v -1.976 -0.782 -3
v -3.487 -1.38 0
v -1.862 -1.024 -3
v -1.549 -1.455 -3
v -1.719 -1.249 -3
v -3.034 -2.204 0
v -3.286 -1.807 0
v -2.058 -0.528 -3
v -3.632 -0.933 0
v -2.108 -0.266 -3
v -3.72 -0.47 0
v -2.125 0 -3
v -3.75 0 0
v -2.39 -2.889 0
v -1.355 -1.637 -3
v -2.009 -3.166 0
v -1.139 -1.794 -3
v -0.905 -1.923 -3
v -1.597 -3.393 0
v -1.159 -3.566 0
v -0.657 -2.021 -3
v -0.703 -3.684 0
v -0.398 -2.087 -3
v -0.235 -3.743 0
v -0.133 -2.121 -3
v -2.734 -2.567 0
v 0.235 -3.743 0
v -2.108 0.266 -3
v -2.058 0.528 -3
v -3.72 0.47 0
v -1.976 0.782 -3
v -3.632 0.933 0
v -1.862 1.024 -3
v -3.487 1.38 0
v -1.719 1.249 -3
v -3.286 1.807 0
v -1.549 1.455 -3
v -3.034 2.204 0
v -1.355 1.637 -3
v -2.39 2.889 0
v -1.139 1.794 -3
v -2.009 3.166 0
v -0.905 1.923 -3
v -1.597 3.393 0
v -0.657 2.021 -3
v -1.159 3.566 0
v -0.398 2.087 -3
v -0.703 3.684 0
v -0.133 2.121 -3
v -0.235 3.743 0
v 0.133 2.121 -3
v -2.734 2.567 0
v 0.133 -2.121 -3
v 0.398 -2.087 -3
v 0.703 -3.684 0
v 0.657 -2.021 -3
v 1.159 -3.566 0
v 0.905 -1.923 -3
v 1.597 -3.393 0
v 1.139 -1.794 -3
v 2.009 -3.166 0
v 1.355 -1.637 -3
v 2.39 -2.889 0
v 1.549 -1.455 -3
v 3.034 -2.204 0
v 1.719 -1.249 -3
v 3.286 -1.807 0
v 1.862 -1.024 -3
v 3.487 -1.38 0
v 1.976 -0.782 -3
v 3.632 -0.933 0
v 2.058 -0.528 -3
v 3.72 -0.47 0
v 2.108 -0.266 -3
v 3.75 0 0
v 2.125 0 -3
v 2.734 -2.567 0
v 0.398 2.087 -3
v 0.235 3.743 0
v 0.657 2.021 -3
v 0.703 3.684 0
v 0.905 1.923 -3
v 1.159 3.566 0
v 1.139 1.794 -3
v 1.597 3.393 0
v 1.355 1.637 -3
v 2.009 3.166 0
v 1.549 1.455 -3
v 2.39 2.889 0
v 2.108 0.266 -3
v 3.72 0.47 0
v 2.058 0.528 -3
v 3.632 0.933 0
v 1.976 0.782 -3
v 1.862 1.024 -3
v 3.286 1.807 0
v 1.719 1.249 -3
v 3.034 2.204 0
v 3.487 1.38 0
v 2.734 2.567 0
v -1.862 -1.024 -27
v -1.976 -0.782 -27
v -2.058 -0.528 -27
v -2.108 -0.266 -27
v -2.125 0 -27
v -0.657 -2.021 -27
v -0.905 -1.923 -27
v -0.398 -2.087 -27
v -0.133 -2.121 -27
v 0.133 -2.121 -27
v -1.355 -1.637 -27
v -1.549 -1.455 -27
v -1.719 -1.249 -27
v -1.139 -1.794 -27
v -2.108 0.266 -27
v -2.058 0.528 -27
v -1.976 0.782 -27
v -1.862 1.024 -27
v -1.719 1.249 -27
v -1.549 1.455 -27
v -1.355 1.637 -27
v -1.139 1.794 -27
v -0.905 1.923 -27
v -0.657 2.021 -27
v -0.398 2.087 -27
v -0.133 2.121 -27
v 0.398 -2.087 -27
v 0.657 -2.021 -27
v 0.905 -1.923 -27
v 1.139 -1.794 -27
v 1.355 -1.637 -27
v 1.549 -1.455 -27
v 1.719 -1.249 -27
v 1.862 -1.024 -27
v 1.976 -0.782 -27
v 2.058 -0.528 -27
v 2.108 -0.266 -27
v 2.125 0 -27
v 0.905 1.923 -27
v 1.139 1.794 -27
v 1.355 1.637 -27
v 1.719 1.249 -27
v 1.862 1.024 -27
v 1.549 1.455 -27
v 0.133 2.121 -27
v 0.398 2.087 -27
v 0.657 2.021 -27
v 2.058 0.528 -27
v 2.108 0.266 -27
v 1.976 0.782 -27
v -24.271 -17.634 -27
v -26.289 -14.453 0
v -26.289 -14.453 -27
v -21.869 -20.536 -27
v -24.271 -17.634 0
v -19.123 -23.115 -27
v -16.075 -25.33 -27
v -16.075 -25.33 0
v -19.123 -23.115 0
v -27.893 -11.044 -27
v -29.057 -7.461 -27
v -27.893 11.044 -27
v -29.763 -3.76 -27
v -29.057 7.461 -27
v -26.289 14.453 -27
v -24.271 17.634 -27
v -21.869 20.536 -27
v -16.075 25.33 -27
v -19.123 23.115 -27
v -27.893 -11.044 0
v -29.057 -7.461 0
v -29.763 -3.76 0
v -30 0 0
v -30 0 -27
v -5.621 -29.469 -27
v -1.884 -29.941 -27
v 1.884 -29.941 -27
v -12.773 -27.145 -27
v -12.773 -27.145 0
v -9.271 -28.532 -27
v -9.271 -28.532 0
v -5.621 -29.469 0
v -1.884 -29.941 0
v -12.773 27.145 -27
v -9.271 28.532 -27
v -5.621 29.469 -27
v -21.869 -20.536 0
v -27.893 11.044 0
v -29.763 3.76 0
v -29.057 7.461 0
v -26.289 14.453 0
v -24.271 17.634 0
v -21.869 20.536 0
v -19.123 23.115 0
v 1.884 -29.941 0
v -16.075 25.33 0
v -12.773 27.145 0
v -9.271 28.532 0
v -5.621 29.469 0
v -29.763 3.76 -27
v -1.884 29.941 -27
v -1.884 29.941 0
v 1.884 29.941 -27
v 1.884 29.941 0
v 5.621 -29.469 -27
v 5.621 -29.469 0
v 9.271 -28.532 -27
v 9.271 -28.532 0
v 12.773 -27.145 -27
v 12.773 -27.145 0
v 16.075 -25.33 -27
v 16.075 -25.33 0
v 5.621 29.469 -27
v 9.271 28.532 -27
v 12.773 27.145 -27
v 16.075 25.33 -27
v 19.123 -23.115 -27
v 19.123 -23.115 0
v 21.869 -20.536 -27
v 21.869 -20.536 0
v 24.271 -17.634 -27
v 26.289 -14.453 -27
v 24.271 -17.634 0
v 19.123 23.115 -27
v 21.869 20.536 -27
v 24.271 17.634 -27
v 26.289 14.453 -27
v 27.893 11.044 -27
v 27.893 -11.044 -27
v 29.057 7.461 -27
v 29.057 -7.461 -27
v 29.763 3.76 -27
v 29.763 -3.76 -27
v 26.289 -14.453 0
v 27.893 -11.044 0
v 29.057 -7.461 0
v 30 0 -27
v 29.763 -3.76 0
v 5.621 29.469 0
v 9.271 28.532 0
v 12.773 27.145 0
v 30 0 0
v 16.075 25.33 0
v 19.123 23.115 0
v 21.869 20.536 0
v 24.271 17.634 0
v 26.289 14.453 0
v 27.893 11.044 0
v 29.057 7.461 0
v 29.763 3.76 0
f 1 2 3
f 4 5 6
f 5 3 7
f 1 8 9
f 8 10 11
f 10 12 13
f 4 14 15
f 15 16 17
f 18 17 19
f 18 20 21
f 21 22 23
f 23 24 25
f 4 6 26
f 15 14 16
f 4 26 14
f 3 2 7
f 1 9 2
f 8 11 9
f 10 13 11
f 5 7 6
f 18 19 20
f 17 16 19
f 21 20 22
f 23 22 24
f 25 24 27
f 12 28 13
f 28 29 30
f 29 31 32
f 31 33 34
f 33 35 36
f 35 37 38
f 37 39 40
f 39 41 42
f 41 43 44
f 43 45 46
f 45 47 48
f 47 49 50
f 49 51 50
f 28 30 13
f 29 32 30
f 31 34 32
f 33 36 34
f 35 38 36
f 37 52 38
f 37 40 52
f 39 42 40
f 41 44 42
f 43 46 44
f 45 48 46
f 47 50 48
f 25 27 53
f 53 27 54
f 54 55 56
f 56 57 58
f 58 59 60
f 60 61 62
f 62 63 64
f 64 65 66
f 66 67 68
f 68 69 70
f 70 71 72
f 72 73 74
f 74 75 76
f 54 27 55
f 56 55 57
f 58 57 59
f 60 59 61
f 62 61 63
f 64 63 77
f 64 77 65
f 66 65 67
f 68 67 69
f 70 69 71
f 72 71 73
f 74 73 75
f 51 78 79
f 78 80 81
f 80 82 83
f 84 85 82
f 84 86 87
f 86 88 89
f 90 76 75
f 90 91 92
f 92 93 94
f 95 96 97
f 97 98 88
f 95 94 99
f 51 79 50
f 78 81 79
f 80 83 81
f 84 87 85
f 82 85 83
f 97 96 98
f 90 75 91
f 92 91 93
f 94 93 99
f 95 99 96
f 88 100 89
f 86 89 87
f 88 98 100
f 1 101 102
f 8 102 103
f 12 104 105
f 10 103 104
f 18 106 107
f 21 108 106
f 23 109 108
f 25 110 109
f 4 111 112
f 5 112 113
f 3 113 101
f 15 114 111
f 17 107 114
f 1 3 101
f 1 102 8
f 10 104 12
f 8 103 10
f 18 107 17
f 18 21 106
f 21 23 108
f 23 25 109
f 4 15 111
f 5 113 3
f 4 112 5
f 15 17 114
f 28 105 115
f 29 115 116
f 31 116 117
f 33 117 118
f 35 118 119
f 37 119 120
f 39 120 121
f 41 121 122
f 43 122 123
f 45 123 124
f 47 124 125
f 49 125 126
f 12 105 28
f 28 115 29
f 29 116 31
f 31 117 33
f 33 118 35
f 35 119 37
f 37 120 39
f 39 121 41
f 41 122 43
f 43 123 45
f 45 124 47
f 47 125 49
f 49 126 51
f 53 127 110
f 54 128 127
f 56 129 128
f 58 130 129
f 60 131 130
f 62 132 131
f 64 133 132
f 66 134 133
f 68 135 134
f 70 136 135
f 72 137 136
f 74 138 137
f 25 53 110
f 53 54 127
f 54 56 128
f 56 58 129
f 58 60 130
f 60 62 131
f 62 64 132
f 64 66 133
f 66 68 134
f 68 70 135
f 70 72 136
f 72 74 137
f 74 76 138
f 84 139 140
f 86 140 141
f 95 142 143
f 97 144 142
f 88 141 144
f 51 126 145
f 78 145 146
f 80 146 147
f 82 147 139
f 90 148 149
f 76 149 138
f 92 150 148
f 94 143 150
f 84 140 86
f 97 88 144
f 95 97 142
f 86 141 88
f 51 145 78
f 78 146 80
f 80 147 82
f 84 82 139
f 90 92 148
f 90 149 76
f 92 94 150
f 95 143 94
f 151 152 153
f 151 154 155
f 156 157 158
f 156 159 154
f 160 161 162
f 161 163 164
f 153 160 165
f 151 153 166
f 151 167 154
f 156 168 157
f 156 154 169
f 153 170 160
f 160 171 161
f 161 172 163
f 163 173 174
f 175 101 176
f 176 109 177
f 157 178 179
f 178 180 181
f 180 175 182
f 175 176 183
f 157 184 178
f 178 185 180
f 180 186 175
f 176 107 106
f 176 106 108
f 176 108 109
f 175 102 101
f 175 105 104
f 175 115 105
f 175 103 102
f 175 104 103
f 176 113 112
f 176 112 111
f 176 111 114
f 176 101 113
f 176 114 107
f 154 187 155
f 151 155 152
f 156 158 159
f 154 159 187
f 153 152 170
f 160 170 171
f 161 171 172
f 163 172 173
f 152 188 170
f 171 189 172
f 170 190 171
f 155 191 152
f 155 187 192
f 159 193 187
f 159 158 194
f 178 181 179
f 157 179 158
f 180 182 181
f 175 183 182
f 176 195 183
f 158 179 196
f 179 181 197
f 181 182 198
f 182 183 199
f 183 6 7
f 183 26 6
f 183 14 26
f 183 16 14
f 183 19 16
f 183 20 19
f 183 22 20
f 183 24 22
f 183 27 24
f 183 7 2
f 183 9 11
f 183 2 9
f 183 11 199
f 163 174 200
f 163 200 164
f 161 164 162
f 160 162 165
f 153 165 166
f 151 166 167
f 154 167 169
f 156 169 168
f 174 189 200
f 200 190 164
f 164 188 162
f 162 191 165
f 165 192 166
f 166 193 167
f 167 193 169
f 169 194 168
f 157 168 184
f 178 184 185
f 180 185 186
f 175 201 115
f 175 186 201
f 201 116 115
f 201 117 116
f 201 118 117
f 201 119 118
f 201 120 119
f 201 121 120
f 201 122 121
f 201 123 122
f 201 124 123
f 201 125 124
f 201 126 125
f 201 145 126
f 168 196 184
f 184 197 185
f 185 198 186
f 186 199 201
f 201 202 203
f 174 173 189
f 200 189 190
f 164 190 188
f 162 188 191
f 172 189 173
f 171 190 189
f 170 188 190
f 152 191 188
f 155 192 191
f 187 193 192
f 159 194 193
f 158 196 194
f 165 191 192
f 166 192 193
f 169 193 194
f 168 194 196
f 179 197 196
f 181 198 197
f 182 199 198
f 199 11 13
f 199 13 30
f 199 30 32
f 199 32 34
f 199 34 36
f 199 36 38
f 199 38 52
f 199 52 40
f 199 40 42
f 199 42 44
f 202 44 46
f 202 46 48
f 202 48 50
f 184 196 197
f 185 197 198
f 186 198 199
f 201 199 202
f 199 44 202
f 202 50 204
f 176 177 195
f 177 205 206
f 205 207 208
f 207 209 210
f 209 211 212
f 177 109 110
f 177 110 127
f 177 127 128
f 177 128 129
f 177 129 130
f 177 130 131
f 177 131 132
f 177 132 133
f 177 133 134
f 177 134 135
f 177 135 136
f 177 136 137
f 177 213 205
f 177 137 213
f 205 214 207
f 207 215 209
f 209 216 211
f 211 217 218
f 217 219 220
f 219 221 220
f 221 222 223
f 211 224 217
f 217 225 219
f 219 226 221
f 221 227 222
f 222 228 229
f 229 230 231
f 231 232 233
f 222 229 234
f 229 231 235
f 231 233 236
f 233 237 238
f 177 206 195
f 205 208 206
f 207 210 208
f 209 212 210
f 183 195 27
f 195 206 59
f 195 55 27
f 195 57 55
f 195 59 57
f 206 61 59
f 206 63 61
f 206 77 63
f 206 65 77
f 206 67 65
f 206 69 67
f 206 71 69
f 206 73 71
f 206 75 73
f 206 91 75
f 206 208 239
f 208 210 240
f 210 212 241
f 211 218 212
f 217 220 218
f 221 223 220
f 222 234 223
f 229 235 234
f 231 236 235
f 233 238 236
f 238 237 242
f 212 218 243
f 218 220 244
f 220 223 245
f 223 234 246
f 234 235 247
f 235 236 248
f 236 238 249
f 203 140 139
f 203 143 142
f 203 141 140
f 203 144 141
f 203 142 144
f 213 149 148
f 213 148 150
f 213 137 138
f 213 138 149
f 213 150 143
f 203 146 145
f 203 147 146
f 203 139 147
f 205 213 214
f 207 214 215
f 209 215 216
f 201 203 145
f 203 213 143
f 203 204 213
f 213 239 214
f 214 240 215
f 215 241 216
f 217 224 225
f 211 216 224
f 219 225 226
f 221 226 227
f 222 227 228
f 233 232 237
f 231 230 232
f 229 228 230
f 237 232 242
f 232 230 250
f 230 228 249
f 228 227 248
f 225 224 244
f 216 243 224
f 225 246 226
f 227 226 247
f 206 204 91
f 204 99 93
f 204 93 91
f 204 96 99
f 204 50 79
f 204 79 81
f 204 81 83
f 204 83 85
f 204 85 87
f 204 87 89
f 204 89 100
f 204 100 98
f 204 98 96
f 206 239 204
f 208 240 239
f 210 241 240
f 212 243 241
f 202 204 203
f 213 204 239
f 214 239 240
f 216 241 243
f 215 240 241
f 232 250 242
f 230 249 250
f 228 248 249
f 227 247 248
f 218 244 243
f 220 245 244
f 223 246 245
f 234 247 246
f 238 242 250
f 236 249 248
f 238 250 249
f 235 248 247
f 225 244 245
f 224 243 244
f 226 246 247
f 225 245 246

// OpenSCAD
$fn = 50;

difference() {
	union() {
		translate(v = [0, 0, -27.0]) {
			cylinder(h = 27, r = 30.0);
		}
	}
	union() {
		translate(v = [0, 0, 0]) {
			rotate(a = [0, 0, 0]) {
				difference() {
					union() {
						translate(v = [0, 0, -30.0]) {
							cylinder(h = 30, r = 2.0);
						}
						translate(v = [0, 0, -3]) {
							cylinder(h = 3, r1 = 2.125, r2 = 3.75);
						}
						translate(v = [0, 0, -30.0]) {
							cylinder(h = 30, r = 2.125);
						}
						translate(v = [0, 0, -30.0]) {
							cylinder(h = 30, r = 2.0);
						}
					}
					union();
				}
			}
		}
	}
}
